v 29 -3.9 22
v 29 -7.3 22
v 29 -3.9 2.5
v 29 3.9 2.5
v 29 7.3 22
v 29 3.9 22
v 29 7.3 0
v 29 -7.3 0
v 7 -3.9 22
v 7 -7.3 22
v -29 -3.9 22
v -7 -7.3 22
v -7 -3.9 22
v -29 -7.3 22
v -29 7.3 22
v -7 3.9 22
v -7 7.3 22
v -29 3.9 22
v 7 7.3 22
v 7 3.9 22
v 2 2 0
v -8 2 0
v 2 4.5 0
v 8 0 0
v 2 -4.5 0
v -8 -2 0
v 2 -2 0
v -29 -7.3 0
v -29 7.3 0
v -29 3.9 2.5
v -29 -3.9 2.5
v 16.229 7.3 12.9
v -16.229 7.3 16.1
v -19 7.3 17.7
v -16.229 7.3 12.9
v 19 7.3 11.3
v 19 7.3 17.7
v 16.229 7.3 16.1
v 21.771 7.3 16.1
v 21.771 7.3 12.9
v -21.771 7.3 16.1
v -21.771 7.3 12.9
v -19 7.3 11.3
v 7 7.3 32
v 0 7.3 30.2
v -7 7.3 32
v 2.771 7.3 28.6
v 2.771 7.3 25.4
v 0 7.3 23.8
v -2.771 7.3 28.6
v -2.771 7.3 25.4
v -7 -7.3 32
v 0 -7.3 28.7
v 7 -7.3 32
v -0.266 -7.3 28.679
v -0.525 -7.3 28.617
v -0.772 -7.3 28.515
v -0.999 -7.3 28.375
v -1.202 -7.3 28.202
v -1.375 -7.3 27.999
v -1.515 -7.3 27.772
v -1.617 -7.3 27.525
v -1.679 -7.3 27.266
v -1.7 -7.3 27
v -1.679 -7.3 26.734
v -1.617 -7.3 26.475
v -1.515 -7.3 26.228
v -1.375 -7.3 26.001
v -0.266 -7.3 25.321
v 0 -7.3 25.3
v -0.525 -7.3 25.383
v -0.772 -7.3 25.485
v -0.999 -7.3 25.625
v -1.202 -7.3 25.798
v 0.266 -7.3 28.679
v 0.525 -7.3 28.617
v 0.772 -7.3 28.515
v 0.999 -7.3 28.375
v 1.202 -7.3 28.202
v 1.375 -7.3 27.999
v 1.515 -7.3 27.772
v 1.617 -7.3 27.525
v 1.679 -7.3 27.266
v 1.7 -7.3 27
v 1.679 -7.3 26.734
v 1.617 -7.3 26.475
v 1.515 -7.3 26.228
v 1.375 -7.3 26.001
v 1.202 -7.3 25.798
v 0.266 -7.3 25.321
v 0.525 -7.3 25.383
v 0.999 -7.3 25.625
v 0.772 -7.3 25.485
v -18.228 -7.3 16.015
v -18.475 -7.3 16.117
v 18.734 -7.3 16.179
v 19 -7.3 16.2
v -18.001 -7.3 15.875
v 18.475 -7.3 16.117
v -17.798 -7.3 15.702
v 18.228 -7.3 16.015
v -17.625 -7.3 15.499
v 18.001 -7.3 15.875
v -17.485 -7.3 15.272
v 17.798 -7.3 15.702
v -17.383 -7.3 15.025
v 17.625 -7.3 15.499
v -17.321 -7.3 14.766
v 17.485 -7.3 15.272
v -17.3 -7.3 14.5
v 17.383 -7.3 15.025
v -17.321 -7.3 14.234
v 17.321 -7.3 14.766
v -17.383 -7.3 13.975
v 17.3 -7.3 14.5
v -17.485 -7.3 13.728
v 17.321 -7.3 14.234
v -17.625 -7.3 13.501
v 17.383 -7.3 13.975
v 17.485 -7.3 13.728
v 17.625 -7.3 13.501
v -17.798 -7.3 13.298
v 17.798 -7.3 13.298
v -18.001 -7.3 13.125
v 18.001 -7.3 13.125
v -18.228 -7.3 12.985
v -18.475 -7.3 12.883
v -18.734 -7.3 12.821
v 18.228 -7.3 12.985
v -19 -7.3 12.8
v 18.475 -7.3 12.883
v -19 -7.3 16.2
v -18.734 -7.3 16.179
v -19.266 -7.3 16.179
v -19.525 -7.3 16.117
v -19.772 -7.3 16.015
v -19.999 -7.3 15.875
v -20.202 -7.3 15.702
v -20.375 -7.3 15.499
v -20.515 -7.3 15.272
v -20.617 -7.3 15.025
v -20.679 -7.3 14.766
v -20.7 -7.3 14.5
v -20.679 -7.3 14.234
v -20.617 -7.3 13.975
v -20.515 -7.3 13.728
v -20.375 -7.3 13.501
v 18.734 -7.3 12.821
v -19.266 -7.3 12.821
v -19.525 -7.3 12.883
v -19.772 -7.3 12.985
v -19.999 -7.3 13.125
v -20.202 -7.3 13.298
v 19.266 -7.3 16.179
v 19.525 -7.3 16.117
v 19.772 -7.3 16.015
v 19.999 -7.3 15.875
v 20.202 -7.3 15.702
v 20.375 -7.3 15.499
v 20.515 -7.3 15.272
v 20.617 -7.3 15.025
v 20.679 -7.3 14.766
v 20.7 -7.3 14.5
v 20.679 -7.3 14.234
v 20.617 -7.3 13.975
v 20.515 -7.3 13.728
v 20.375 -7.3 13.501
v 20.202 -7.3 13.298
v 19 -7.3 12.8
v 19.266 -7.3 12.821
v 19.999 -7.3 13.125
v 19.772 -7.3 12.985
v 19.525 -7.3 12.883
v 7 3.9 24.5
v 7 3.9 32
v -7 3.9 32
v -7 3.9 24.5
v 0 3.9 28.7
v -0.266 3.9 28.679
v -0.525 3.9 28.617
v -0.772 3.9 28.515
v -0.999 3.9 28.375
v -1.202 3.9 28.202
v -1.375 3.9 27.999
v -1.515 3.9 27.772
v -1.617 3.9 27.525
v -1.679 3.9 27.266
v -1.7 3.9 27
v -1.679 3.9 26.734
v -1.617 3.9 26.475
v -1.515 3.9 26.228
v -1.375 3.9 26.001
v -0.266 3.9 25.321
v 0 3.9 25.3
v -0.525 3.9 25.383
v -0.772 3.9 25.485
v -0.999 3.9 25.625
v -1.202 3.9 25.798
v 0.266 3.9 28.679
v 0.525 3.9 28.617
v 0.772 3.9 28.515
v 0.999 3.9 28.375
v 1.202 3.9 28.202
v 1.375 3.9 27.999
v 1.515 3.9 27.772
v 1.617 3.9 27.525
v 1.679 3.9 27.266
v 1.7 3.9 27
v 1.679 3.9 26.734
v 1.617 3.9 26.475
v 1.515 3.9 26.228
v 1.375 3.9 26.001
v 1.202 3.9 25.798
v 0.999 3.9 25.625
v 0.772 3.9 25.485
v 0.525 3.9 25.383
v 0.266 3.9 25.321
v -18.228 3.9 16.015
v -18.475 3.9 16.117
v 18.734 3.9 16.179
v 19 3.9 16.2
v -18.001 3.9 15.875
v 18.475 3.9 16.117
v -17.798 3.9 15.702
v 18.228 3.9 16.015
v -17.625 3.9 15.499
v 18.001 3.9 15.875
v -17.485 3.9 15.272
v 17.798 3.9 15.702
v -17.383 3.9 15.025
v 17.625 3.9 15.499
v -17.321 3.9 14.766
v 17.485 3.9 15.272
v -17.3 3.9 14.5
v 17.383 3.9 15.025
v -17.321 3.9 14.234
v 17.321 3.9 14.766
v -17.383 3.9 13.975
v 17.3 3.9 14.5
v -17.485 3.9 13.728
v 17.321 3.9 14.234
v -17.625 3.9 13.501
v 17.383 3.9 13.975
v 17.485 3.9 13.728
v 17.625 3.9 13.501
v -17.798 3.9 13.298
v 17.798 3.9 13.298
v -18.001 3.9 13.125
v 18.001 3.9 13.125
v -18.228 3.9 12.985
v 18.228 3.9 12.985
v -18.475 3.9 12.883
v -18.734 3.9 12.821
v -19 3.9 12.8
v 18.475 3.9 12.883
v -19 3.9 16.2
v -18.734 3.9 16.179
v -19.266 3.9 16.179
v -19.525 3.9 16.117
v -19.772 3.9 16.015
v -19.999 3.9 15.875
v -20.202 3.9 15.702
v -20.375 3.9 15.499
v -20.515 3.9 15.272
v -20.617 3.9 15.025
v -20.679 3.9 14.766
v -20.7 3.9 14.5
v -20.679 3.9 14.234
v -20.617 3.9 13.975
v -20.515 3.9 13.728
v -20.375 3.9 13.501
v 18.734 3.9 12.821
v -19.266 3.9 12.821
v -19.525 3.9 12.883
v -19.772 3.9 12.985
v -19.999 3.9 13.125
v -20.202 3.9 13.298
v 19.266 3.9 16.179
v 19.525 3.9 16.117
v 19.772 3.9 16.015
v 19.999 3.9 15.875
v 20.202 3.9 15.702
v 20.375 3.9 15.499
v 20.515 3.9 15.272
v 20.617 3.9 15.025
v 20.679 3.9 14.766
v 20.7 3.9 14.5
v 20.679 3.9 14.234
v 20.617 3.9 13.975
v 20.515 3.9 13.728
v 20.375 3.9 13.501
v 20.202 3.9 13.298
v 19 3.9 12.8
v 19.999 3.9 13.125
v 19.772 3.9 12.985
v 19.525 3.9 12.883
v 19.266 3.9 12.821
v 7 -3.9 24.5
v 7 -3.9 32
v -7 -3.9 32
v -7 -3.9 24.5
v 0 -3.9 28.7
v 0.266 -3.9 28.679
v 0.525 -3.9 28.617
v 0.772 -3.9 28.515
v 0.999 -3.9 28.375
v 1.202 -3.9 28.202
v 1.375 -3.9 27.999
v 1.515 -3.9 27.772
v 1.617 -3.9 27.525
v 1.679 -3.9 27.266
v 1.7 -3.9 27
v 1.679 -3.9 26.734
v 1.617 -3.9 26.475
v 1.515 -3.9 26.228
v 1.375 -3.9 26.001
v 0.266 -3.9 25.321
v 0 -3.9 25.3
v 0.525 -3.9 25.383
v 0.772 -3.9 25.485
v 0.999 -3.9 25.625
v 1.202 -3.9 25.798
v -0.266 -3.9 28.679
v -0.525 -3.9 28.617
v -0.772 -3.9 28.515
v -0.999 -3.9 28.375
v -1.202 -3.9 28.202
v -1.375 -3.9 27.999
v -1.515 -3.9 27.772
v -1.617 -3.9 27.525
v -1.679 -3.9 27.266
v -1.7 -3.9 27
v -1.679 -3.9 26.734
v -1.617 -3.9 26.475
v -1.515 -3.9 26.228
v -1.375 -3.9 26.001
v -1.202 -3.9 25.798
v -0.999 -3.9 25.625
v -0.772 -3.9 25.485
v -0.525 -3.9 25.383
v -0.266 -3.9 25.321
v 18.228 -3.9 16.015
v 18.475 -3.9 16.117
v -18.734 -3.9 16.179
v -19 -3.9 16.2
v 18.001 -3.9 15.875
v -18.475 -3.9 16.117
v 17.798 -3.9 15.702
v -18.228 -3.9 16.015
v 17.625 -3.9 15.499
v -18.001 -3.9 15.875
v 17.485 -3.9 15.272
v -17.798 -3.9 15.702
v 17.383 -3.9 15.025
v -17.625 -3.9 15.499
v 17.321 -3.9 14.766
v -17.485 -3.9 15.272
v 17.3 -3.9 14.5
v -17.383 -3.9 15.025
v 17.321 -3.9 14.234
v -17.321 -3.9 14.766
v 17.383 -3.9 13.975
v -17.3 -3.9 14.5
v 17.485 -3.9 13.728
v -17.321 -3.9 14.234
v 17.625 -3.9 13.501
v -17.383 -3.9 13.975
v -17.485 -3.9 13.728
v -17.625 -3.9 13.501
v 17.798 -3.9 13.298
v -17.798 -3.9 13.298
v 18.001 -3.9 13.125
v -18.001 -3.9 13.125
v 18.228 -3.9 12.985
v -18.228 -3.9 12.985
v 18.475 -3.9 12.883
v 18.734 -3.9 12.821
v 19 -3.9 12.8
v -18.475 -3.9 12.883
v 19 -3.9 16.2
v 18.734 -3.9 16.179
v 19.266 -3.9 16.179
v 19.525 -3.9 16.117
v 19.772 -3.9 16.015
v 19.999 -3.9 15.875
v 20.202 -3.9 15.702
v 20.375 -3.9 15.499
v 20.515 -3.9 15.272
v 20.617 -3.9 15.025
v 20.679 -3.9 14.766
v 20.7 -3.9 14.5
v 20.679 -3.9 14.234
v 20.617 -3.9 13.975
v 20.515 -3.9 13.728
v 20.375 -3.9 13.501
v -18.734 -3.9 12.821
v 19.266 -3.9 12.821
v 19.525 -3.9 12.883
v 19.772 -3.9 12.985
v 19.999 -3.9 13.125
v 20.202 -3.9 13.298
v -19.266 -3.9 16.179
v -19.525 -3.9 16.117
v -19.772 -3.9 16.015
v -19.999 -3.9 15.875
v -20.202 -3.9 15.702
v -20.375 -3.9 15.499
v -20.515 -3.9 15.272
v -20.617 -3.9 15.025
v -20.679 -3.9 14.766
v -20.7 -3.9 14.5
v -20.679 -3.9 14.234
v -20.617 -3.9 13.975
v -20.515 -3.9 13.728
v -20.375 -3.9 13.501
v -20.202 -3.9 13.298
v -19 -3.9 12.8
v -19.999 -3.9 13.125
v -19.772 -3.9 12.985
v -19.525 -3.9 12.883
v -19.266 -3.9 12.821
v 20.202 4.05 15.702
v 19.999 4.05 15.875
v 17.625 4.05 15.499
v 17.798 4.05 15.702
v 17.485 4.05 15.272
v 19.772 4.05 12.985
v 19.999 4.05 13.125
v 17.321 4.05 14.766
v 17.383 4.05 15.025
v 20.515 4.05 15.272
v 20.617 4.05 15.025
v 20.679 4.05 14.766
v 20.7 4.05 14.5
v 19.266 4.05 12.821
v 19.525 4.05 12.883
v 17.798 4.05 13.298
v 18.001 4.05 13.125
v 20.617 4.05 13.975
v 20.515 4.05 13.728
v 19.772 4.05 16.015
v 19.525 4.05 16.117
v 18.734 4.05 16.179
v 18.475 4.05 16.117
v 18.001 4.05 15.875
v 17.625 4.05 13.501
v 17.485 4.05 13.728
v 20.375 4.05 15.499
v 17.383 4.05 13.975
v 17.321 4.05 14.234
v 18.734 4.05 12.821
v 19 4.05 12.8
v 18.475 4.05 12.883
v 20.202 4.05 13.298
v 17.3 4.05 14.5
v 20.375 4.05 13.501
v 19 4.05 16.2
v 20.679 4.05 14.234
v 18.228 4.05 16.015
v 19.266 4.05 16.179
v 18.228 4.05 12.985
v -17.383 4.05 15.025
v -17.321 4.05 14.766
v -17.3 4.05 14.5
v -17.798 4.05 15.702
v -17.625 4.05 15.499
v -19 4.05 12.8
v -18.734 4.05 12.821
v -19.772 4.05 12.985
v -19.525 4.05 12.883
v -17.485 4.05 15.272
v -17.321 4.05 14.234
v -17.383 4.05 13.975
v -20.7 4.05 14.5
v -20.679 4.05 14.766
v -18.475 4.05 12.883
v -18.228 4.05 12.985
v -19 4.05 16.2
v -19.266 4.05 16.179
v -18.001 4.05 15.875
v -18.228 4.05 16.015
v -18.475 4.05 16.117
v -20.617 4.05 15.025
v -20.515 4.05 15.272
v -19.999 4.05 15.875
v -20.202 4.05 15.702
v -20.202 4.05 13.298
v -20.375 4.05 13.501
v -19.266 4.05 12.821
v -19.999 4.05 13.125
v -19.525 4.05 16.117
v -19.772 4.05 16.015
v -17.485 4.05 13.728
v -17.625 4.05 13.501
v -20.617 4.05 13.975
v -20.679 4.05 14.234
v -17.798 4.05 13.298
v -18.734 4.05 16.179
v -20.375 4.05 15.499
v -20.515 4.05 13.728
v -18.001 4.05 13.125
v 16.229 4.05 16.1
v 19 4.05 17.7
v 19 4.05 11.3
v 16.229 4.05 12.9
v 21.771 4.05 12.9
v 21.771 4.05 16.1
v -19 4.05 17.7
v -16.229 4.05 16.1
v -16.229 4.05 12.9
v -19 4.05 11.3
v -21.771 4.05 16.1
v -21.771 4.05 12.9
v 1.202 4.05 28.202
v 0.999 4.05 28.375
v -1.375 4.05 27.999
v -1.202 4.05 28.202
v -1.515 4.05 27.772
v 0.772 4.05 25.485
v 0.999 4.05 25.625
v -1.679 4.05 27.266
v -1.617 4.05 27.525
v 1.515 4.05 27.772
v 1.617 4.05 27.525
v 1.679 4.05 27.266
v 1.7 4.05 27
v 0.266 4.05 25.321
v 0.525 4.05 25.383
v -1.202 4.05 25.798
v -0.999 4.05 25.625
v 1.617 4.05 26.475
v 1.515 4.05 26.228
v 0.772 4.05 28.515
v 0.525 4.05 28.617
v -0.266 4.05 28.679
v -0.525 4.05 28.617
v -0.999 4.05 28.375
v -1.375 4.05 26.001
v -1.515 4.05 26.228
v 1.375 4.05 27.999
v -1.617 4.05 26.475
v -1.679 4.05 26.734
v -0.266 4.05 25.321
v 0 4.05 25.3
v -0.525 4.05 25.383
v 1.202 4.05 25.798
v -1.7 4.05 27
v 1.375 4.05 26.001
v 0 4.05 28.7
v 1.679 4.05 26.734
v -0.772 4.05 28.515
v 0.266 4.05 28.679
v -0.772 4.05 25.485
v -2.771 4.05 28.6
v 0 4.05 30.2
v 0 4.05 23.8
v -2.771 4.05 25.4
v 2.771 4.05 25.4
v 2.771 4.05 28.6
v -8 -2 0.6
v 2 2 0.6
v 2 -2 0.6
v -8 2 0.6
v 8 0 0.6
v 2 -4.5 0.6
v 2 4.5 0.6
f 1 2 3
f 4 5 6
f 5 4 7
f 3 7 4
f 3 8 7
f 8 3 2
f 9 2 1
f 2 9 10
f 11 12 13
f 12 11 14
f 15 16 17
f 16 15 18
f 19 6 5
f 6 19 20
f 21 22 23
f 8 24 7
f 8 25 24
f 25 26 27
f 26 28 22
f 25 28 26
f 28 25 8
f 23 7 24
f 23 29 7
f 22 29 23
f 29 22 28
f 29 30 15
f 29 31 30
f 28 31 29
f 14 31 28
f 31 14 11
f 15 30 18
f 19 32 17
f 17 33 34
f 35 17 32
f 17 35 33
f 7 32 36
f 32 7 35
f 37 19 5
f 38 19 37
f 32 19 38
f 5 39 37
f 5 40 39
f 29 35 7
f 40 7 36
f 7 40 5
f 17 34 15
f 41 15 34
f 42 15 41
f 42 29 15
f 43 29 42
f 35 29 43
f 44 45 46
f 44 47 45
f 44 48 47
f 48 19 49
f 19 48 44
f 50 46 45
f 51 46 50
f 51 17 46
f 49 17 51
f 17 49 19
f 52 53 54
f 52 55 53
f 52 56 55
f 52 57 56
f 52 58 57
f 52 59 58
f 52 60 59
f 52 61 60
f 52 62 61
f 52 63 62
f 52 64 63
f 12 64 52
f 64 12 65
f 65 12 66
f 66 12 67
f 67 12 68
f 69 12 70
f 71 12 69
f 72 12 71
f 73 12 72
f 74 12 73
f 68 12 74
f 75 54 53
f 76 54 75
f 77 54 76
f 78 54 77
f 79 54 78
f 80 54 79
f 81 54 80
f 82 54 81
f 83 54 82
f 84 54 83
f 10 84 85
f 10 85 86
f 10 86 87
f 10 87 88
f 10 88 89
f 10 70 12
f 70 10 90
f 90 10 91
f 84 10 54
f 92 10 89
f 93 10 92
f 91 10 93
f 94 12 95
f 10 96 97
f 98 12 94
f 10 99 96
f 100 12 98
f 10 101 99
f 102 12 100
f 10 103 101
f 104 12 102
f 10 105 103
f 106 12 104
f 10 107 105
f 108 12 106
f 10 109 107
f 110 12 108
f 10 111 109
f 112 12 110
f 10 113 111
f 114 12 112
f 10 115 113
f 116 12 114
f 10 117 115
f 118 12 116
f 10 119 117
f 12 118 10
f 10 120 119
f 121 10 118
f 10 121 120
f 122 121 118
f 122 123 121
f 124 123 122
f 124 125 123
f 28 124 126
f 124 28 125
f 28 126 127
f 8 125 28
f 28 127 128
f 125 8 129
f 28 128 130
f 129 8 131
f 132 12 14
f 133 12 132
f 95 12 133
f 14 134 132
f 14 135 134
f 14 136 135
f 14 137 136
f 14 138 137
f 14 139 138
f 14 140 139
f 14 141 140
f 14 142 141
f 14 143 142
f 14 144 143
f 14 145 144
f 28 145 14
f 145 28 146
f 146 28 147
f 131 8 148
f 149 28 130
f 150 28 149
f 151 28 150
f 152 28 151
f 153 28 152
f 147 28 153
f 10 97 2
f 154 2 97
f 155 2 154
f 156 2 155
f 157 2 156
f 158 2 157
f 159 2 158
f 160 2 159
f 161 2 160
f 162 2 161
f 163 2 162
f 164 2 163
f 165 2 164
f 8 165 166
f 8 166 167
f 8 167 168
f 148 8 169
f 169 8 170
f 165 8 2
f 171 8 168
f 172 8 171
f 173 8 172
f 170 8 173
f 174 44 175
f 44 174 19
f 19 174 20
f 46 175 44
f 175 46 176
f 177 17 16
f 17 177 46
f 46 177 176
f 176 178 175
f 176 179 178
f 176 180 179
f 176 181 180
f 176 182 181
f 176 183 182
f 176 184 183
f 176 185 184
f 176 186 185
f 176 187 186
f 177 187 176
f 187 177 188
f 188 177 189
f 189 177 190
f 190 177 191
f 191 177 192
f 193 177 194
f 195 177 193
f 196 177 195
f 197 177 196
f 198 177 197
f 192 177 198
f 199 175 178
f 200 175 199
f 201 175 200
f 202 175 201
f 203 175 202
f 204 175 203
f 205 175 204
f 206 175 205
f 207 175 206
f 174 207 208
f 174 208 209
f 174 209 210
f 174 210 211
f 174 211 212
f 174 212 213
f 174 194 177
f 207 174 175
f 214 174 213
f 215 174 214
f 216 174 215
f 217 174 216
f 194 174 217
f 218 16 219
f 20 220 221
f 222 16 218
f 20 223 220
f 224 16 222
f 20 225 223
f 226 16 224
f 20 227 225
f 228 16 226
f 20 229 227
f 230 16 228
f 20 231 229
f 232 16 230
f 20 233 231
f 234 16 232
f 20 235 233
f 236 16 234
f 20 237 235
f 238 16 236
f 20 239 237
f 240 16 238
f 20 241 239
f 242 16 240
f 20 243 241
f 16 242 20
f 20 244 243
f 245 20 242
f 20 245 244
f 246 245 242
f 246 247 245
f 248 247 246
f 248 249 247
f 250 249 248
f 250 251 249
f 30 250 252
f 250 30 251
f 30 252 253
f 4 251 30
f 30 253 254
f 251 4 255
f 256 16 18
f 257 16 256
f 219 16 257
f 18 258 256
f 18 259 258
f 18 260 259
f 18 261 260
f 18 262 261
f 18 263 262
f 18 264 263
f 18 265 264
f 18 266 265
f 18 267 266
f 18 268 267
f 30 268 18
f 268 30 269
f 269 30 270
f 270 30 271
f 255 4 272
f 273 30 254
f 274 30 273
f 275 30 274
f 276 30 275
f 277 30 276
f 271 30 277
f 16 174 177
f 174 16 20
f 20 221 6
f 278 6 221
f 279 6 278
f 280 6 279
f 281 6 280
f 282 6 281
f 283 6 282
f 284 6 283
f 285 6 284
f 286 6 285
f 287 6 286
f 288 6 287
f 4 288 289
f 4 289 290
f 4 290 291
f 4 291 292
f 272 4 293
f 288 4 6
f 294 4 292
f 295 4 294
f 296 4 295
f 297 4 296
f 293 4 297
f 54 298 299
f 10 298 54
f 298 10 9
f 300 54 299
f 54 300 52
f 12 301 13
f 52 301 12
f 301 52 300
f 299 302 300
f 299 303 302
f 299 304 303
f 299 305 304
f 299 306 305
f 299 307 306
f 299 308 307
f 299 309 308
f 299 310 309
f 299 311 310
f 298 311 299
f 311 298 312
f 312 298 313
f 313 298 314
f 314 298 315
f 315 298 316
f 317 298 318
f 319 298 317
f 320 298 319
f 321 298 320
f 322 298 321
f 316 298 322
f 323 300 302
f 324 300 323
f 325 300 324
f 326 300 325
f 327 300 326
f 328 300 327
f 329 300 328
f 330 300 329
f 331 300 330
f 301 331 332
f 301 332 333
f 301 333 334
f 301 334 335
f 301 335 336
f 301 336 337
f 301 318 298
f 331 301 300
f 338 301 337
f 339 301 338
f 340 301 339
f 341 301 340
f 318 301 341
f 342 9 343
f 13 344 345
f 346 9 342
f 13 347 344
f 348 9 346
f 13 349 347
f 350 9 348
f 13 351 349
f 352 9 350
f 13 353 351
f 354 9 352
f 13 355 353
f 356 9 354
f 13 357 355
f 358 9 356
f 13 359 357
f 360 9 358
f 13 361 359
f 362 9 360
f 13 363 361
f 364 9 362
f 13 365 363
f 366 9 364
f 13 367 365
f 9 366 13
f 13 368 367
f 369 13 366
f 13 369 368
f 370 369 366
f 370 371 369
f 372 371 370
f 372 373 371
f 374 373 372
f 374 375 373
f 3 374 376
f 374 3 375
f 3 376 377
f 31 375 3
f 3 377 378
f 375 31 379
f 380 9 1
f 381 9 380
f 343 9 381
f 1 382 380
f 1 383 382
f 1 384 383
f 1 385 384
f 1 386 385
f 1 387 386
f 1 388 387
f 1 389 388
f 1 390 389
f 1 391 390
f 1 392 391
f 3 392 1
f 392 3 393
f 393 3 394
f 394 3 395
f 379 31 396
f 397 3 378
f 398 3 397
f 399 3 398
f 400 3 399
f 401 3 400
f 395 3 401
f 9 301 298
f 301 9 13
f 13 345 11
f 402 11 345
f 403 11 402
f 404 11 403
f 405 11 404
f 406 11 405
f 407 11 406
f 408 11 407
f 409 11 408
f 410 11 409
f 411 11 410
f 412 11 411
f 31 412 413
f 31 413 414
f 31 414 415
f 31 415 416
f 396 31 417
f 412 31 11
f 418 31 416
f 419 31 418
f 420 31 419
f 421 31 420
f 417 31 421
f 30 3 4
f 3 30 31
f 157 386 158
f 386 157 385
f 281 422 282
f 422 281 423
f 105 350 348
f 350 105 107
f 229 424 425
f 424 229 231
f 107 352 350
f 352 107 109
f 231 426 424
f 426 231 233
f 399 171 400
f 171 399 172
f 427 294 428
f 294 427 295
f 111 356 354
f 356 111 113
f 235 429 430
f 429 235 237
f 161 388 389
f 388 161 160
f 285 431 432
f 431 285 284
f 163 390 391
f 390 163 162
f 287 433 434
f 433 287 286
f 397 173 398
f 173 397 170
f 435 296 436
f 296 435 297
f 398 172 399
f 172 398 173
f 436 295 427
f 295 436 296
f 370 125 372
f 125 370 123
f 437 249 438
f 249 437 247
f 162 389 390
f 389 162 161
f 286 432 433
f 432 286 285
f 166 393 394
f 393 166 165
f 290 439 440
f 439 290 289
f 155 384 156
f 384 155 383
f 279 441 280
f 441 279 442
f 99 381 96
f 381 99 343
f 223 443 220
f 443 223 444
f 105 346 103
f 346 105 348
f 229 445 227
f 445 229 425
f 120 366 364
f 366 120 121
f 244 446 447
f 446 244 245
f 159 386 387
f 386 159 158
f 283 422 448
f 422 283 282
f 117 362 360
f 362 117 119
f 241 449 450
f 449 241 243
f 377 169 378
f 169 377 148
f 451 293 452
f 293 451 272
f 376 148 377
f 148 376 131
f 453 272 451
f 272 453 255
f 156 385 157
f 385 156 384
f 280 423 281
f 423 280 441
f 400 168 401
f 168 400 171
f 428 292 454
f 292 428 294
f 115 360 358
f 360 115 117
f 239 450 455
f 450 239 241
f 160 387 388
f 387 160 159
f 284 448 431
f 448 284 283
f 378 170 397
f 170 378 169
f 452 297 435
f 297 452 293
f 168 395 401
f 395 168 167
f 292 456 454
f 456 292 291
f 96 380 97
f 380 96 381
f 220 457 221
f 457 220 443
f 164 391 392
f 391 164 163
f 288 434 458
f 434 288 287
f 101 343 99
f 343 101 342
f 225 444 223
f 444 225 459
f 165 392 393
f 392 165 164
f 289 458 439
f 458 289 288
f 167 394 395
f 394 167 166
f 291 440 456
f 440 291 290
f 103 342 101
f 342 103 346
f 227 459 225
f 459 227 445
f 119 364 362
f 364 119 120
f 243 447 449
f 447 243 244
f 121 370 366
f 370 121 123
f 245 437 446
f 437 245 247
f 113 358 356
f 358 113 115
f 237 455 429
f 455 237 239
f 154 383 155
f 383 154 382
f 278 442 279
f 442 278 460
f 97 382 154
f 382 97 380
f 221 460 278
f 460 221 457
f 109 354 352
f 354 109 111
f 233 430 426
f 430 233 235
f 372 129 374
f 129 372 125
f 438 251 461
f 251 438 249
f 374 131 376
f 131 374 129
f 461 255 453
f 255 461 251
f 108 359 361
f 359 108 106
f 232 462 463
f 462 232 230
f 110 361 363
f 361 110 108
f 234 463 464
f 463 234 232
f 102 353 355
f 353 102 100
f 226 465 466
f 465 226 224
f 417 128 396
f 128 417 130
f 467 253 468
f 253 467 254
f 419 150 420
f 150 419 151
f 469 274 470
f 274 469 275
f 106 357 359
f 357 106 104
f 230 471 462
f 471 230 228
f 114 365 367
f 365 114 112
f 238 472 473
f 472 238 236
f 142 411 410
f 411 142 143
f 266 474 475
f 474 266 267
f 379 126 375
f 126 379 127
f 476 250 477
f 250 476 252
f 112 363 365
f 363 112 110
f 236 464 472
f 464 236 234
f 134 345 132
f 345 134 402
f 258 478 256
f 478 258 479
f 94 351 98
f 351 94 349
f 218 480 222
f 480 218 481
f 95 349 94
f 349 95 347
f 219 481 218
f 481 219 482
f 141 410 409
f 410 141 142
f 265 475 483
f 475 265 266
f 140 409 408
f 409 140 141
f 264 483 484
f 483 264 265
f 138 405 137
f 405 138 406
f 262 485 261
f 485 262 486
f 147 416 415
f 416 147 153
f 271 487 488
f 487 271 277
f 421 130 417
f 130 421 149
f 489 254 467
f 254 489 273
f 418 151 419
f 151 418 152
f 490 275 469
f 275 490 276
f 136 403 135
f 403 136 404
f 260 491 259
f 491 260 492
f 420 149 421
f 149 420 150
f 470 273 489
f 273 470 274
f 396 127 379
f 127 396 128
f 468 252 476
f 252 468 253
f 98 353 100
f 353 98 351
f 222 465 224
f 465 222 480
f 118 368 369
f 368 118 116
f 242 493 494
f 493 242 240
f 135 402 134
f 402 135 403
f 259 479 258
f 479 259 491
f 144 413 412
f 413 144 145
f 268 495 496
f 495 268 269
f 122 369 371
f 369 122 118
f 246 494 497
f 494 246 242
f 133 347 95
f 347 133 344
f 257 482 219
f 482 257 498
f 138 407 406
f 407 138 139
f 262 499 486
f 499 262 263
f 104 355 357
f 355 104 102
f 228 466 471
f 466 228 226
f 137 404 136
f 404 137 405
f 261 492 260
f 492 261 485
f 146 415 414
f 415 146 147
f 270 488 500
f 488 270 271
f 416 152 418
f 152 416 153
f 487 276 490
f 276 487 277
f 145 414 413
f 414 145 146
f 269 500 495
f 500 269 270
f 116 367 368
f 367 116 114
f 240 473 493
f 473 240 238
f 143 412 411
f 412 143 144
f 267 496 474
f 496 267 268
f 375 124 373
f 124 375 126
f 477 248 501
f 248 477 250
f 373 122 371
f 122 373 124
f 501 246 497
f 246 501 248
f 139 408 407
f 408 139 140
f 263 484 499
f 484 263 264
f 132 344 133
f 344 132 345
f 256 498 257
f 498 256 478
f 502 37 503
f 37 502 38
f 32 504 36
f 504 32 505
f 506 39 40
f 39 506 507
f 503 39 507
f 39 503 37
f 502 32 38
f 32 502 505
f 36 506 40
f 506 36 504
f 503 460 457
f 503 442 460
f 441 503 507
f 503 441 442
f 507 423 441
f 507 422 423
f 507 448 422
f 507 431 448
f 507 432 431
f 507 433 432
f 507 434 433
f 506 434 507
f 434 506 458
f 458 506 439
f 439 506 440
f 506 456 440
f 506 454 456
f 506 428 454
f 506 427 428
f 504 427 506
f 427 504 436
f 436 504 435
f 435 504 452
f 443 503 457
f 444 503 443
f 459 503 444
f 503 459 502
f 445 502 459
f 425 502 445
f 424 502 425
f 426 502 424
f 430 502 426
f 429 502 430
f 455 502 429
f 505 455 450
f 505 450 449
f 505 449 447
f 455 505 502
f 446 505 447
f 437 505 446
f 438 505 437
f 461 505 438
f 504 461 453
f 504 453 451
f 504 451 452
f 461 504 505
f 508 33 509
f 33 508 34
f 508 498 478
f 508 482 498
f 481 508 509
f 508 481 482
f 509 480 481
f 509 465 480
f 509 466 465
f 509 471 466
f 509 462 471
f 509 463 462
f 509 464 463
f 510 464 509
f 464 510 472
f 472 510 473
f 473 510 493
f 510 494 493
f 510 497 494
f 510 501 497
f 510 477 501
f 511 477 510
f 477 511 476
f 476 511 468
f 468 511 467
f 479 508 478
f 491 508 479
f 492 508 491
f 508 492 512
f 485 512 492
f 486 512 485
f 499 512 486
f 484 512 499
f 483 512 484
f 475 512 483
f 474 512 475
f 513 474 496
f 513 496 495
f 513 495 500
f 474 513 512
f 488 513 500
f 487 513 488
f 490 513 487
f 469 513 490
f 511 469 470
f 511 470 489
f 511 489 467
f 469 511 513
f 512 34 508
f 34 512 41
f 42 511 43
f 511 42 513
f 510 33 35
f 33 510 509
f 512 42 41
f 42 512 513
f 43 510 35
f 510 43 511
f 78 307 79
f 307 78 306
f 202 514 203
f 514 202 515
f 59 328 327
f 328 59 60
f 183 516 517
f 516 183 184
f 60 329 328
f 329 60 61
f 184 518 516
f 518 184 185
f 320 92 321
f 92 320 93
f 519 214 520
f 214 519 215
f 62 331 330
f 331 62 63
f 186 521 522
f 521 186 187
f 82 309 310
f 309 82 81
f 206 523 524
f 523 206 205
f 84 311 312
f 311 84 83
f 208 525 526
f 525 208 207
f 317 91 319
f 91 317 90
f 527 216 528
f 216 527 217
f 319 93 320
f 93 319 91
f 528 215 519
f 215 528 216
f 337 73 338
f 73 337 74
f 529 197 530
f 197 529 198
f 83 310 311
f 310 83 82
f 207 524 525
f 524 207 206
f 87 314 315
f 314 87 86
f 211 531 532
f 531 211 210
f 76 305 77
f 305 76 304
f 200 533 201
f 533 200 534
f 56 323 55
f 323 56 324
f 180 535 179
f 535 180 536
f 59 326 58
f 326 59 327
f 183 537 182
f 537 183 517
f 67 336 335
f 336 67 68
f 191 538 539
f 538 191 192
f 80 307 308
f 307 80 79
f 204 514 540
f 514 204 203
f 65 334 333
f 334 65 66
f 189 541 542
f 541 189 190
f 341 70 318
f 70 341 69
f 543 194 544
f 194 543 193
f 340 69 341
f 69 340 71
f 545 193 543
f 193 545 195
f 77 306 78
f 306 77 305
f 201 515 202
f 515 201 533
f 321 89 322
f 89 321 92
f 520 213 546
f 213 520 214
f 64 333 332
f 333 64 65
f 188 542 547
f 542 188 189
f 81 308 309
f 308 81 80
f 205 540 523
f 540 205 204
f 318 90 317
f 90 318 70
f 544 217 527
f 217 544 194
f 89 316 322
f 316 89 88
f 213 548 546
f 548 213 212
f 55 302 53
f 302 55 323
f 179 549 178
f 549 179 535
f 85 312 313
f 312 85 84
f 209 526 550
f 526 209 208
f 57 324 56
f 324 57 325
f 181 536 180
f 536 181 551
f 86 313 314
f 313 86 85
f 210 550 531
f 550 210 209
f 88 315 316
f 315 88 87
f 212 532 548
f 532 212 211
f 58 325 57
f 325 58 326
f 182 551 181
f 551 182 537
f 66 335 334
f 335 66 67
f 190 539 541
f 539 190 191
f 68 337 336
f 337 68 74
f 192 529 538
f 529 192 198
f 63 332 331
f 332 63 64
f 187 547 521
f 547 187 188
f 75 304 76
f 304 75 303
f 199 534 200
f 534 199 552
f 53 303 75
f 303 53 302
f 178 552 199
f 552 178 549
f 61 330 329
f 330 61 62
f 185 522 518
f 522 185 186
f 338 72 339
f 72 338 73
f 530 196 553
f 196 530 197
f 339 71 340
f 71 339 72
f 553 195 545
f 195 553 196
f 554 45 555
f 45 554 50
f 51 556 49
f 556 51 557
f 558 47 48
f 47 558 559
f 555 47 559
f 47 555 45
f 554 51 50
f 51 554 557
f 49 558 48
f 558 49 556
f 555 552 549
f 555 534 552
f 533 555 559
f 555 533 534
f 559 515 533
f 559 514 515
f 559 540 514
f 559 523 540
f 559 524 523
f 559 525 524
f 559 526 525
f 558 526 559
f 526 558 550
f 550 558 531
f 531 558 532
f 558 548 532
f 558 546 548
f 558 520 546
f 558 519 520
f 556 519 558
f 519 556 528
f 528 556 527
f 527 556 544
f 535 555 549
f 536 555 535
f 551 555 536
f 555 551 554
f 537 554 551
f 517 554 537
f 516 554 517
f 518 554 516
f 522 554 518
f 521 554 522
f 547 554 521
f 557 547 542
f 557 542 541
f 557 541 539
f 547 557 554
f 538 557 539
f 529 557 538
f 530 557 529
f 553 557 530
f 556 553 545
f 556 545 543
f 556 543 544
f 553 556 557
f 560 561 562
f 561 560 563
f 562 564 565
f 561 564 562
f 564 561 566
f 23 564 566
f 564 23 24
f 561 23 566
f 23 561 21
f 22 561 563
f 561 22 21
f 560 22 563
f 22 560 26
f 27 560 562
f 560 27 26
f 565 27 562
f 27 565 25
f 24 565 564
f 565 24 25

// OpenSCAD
// file: trolley_wheel.scad
// ====================================================================
// Trolley Roller Wheel (100% 3D-Printable - Flat on Bed at Z = 0)
// Grooved sheave designed to roll directly on a 1.0 - 2.0 mm cable line.
// Spins freely on a standard M3 or M4 screw / pin axle.
// ====================================================================

$fn = 60; // Smooth curve resolution

// Parameters
wheel_outer_dia   = 22.0; // Outer flange diameter (mm)
groove_root_dia   = 16.0; // Bottom of groove diameter (mm)
wheel_thickness   = 6.0;  // Total thickness along axle (mm)
groove_width      = 3.0;  // Width of cable track (mm)
axle_hole_dia     = 3.4;  // Fits standard M3 screw with clearance
hub_lip_extension = 0.6;  // Built-in standoff hub so wheel faces don't rub on carriage walls
hub_dia           = 7.0;  // Diameter of built-in standoff spacer

total_wheel_h = wheel_thickness + (hub_lip_extension * 2);

module trolley_wheel_body(od = wheel_outer_dia, root_d = groove_root_dia, th = wheel_thickness, axle_d = axle_hole_dia) {
    difference() {
        union() {
            // Main wheel body
            translate([0, 0, hub_lip_extension])
                cylinder(d = od, h = th);
            // Built-in hub spacers on both sides (starts at Z = 0)
            cylinder(d = hub_dia, h = th + (hub_lip_extension * 2));
        }
        
        // Central axle bore
        translate([0, 0, -1])
            cylinder(d = axle_d, h = th + (hub_lip_extension * 2) + 2);
        
        // Deep V/U Cable groove around the perimeter
        translate([0, 0, (th / 2) + hub_lip_extension])
            rotate_extrude(convexity = 10) {
                translate([root_d / 2 + (od - root_d) / 4, 0, 0])
                    rotate([0, 0, 45])
                        square([groove_width * 1.1, groove_width * 1.1], center = true);
            }
    }
}

module trolley_wheel() {
    trolley_wheel_body();
}

// Render single wheel flat on build plate at Z = 0
trolley_wheel();
// file: trolley_carriage.scad
// ====================================================================
// Trolley Carriage Frame (100% 3D-Printable - Support Free)
// 
// Print-Optimized (Inverted U-Chassis):
// - Printed upside down: Top of carriage rests flat on bed at Z = 0 (100% adhesion).
// - Wheel and cable channel opens straight up to the sky = ZERO bridges, ZERO overhangs!
// - Lower clevis ears rise straight up as vertical columns with captive M3 nut pockets.
// ====================================================================

use <trolley_wheel.scad>;

$fn = 40;

wheel_spacing       = 38.0; // Distance between front and rear wheel centers (mm)
carriage_length     = 58.0;
carriage_height     = 22.0;
wheel_slot_width    = 7.8;  // Fits 6mm thick wheel + hub clearance
wall_thickness      = 3.4;  // Wall thickness on each side
total_width         = wheel_slot_width + (wall_thickness * 2);
axle_dia            = 3.4;  // Clearance for M3 screw
hanger_pivot_dia    = 3.4;  // Cross-pin hole for gondola hanger arm
clevis_ear_h        = 10.0;

// The carriage modeled natively in its print orientation (Flat on top at Z = 0)
module trolley_carriage_print() {
    difference() {
        union() {
            // Main chassis block (flat on bed at Z = 0)
            translate([0, 0, carriage_height / 2])
                cube([carriage_length, total_width, carriage_height], center = true);
            
            // Lower hanger clevis ears (rise straight up into the air during printing)
            translate([0, (wheel_slot_width + wall_thickness) / 2, carriage_height + clevis_ear_h / 2])
                cube([14.0, wall_thickness, clevis_ear_h], center = true);
            translate([0, -(wheel_slot_width + wall_thickness) / 2, carriage_height + clevis_ear_h / 2])
                cube([14.0, wall_thickness, clevis_ear_h], center = true);
        }

        // Inner wheel channel (open to the top = completely support-free!)
        translate([0, 0, carriage_height / 2 + 2.5])
            cube([carriage_length + 2, wheel_slot_width, carriage_height], center = true);

        // Front & Rear Wheel Axle Holes (38mm spacing)
        translate([wheel_spacing / 2, 0, carriage_height - 7.5])
            rotate([90, 0, 0])
                cylinder(d = axle_dia, h = total_width + 4, center = true);
        translate([-wheel_spacing / 2, 0, carriage_height - 7.5])
            rotate([90, 0, 0])
                cylinder(d = axle_dia, h = total_width + 4, center = true);

        // Captive M3 Nut Pockets (Nut locks into one side so you only need one screwdriver!)
        translate([wheel_spacing / 2, total_width / 2 - 1.5, carriage_height - 7.5])
            rotate([90, 30, 0])
                cylinder(d = 6.4, h = 3.5, $fn = 6, center = true);
        translate([-wheel_spacing / 2, total_width / 2 - 1.5, carriage_height - 7.5])
            rotate([90, 30, 0])
                cylinder(d = 6.4, h = 3.5, $fn = 6, center = true);

        // Hanger arm pivot hole through the clevis ears
        translate([0, 0, carriage_height + clevis_ear_h / 2])
            rotate([90, 0, 0])
                cylinder(d = hanger_pivot_dia, h = total_width + 4, center = true);

        // Captive M3 nut pocket on hanger clevis ear
        translate([0, total_width / 2 - 1.5, carriage_height + clevis_ear_h / 2])
            rotate([90, 30, 0])
                cylinder(d = 6.4, h = 3.5, $fn = 6, center = true);

        // Phase 2 Pre-Engineered Haul-Line Clamp / Tie-Off slots
        translate([10, 0, 8])
            rotate([0, 90, 0])
                cylinder(d = 2.5, h = 6, center = true);
        translate([-10, 0, 8])
            rotate([0, 90, 0])
                cylinder(d = 2.5, h = 6, center = true);

        // Visual Direction Arrow debossed on top of carriage (depth = 0.6mm into flat base)
        translate([0, 0, 0])
            linear_extrude(height = 0.6)
                polygon([[-8, -2], [2, -2], [2, -4.5], [8, 0], [2, 4.5], [2, 2], [-8, 2]]);
    }
}

// Operational upright orientation (used for assembly preview)
module trolley_carriage() {
    translate([0, 0, 7.5])
        rotate([180, 0, 0])
            trolley_carriage_print();
}

// Visual assembly view (carriage with preview of 2 wheels)
module trolley_with_wheels_preview() {
    trolley_carriage();
    #translate([wheel_spacing / 2, 0, 0])
        rotate([90, 0, 0])
            trolley_wheel();
    #translate([-wheel_spacing / 2, 0, 0])
        rotate([90, 0, 0])
            trolley_wheel();
}

// ====================================================================
// Selection
// ====================================================================
// "print"   -> 100% Flat on top face at Z = 0 (Ready to slice, ZERO supports!)
// "upright" -> In upright operational position
// "preview" -> Upright with wheels installed
mode = "print";

if (mode == "print") {
    trolley_carriage_print();
} else if (mode == "upright") {
    trolley_carriage();
} else if (mode == "preview") {
    trolley_with_wheels_preview();
}
// main file
// ====================================================================
// [PRINT 04] Trolley Carriage (Inverted U-Chassis)
// Printed upside down: flat top face rests directly on the bed at Z = 0.
// Wheel and cable channel opens straight up to the sky.
// Includes captive M3 nut pockets for axles and hanger clevis.
// ZERO BRIDGES, ZERO OVERHANGS, ZERO SUPPORTS NEEDED!
// ====================================================================

use <trolley_carriage.scad>;

$fn = 50;

// Centered on bed at Z = 0
trolley_carriage_print();
